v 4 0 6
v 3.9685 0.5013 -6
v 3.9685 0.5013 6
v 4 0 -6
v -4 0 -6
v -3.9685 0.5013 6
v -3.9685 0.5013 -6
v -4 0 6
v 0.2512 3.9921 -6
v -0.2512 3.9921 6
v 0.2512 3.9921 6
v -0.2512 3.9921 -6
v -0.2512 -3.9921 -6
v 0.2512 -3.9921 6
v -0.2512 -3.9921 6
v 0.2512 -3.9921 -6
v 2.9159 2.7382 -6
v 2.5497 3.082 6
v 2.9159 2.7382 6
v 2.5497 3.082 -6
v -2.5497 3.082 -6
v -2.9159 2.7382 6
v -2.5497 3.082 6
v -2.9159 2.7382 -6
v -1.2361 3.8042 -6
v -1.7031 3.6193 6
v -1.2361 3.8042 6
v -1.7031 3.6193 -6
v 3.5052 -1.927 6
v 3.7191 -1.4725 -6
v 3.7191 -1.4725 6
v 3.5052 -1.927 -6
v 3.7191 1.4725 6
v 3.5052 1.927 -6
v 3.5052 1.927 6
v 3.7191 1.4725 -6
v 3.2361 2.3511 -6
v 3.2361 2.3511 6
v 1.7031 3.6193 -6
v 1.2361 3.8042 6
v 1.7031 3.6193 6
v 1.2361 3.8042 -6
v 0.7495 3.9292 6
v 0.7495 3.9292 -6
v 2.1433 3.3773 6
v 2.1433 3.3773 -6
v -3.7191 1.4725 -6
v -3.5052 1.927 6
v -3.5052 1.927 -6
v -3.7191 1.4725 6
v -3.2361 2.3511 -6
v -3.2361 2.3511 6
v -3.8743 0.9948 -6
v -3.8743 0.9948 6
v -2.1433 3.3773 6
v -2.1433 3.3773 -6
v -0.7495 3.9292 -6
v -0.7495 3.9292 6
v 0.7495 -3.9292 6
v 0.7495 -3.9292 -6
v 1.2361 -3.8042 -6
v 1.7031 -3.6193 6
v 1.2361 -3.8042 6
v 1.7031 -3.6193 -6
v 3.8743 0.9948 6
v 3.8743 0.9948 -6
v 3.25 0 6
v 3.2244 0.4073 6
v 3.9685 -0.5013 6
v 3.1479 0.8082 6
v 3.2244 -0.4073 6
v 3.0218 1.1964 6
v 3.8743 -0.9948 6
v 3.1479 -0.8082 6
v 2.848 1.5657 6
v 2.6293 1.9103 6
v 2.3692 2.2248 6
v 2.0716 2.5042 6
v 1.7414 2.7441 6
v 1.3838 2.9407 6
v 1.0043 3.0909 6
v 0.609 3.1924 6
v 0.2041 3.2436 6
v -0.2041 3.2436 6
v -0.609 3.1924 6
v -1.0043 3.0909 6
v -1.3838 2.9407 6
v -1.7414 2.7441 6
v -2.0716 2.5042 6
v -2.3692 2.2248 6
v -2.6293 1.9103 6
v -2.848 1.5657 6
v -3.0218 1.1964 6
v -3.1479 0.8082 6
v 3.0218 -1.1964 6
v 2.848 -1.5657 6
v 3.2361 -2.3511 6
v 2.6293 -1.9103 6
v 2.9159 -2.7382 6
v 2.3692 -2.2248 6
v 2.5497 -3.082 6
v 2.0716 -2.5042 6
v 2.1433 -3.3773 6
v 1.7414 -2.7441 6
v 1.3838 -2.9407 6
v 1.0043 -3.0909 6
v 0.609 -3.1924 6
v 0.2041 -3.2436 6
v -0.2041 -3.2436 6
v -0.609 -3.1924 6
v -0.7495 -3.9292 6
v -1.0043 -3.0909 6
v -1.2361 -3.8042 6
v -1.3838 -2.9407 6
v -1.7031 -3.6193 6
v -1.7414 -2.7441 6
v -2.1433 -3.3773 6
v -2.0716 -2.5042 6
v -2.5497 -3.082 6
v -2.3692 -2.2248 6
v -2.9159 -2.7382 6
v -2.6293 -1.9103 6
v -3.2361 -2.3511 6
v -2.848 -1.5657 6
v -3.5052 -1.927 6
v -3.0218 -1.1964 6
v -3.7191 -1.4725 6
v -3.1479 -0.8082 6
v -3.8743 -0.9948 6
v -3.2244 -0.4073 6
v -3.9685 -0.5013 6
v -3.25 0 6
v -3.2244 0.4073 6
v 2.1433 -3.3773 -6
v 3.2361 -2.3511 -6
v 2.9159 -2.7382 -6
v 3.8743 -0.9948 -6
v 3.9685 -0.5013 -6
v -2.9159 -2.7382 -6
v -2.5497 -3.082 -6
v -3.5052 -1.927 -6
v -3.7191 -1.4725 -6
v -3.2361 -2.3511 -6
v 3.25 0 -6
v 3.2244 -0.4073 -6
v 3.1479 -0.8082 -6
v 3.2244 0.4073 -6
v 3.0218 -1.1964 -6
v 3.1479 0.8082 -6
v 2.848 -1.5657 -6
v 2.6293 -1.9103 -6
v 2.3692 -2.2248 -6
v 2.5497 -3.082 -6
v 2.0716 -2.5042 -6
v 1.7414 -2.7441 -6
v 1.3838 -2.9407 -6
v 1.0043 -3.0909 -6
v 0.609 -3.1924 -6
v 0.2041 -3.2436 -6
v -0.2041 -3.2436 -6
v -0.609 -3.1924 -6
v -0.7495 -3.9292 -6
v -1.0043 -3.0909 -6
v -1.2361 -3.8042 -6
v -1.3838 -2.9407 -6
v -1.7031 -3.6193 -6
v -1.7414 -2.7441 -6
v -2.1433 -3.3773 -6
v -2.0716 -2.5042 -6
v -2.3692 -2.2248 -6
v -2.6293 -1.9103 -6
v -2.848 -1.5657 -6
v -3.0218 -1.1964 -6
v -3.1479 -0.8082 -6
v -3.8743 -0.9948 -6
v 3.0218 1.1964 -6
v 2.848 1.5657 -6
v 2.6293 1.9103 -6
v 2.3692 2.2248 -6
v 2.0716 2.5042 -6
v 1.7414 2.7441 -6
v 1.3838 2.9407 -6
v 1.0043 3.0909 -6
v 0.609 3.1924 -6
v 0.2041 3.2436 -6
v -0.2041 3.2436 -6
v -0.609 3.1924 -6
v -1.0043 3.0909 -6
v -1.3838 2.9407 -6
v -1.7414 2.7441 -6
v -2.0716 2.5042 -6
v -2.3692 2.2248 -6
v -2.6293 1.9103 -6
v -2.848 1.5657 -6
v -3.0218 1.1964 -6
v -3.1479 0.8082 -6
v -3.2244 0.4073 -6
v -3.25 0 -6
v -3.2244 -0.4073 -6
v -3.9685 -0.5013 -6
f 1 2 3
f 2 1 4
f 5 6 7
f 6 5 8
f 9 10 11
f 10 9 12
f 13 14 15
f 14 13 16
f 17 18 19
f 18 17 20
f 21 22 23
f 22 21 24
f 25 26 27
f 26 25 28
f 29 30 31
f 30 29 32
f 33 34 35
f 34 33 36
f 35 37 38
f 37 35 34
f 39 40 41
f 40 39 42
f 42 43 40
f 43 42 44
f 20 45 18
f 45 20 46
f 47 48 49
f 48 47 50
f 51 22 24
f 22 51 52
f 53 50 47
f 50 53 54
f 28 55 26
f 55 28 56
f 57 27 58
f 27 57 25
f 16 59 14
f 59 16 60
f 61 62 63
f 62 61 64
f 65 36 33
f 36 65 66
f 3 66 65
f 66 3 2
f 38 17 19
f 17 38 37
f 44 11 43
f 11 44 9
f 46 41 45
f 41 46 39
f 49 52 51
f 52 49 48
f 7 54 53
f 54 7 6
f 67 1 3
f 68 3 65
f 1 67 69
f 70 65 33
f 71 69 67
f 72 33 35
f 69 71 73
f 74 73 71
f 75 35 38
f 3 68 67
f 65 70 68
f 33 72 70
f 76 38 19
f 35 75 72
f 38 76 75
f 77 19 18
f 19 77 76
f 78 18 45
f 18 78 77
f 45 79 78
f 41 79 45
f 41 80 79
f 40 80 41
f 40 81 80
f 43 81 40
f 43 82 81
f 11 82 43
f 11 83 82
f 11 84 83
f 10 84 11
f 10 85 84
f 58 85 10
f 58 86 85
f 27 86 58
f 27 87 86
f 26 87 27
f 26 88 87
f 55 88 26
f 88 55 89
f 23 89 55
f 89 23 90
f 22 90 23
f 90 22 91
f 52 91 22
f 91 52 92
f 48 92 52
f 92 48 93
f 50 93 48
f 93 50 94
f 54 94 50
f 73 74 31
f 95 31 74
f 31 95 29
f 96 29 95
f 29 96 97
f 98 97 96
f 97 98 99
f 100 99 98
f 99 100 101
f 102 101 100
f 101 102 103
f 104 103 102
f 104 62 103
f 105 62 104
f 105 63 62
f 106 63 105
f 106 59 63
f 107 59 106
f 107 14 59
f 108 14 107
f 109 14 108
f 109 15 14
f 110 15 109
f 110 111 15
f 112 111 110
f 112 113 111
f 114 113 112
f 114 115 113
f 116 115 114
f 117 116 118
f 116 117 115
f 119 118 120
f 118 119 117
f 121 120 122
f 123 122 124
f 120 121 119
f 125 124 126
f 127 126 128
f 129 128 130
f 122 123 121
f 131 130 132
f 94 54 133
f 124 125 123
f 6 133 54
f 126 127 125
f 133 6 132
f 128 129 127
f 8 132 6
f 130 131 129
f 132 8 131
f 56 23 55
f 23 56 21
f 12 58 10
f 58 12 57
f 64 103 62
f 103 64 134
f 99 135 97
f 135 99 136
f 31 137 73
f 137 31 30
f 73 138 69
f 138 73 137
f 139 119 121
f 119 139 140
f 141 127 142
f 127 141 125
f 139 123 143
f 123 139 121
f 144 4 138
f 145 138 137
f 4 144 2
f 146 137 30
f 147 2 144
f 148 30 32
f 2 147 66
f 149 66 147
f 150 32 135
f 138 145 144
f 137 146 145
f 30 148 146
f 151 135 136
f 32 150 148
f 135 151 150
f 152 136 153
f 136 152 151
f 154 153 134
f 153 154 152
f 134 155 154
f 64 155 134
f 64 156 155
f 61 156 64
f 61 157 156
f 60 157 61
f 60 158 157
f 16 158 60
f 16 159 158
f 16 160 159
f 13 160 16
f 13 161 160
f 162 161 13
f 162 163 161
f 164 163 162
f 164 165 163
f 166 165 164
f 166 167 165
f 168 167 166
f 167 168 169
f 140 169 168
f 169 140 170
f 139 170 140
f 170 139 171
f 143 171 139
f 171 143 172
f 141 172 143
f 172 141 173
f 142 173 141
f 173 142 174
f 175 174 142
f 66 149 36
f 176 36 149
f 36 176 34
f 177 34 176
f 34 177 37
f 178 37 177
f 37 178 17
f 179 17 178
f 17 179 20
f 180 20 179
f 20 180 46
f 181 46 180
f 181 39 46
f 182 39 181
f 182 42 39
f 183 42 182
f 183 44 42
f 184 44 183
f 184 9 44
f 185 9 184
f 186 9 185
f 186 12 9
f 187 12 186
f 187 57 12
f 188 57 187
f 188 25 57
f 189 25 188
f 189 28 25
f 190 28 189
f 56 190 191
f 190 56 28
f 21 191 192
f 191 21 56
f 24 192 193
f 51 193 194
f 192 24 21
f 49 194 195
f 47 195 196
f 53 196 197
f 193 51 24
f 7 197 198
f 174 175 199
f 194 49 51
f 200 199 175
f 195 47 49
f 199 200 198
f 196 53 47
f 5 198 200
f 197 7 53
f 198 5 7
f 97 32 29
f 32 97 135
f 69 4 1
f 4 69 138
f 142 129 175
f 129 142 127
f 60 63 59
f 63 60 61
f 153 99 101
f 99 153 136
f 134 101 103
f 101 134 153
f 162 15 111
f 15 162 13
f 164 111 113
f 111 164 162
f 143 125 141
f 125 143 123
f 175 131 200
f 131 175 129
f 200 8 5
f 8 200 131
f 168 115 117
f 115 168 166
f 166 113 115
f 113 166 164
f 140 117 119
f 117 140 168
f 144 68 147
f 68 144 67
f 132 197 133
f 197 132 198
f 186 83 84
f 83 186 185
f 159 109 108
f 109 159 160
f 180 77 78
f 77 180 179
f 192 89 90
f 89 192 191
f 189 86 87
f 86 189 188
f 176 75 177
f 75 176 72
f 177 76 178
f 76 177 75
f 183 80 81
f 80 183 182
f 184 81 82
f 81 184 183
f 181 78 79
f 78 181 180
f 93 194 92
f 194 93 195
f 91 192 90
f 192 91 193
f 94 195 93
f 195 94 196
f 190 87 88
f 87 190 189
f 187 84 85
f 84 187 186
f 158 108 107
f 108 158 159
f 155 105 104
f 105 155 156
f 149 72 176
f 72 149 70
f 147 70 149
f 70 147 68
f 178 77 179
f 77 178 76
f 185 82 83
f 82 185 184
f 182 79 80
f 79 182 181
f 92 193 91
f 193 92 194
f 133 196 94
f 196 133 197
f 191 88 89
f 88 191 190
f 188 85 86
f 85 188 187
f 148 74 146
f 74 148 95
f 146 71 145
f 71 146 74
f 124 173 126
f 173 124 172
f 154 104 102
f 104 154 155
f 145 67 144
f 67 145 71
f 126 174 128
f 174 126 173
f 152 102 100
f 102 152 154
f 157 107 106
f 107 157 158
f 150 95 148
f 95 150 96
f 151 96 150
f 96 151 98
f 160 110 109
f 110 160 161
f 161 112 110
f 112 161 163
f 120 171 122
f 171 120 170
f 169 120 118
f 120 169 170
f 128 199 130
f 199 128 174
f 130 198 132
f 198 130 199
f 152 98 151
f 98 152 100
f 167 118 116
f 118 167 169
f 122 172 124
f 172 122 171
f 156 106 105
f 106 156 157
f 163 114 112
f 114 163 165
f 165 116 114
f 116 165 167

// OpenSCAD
$fn = 50;


difference() {
	union() {
		translate(v = [0, 0, -6.0000000000]) {
			cylinder(h = 12, r = 4.0000000000);
		}
	}
	union() {
		translate(v = [0, 0, -100.0000000000]) {
			cylinder(h = 200, r = 3.2500000000);
		}
	}
}
